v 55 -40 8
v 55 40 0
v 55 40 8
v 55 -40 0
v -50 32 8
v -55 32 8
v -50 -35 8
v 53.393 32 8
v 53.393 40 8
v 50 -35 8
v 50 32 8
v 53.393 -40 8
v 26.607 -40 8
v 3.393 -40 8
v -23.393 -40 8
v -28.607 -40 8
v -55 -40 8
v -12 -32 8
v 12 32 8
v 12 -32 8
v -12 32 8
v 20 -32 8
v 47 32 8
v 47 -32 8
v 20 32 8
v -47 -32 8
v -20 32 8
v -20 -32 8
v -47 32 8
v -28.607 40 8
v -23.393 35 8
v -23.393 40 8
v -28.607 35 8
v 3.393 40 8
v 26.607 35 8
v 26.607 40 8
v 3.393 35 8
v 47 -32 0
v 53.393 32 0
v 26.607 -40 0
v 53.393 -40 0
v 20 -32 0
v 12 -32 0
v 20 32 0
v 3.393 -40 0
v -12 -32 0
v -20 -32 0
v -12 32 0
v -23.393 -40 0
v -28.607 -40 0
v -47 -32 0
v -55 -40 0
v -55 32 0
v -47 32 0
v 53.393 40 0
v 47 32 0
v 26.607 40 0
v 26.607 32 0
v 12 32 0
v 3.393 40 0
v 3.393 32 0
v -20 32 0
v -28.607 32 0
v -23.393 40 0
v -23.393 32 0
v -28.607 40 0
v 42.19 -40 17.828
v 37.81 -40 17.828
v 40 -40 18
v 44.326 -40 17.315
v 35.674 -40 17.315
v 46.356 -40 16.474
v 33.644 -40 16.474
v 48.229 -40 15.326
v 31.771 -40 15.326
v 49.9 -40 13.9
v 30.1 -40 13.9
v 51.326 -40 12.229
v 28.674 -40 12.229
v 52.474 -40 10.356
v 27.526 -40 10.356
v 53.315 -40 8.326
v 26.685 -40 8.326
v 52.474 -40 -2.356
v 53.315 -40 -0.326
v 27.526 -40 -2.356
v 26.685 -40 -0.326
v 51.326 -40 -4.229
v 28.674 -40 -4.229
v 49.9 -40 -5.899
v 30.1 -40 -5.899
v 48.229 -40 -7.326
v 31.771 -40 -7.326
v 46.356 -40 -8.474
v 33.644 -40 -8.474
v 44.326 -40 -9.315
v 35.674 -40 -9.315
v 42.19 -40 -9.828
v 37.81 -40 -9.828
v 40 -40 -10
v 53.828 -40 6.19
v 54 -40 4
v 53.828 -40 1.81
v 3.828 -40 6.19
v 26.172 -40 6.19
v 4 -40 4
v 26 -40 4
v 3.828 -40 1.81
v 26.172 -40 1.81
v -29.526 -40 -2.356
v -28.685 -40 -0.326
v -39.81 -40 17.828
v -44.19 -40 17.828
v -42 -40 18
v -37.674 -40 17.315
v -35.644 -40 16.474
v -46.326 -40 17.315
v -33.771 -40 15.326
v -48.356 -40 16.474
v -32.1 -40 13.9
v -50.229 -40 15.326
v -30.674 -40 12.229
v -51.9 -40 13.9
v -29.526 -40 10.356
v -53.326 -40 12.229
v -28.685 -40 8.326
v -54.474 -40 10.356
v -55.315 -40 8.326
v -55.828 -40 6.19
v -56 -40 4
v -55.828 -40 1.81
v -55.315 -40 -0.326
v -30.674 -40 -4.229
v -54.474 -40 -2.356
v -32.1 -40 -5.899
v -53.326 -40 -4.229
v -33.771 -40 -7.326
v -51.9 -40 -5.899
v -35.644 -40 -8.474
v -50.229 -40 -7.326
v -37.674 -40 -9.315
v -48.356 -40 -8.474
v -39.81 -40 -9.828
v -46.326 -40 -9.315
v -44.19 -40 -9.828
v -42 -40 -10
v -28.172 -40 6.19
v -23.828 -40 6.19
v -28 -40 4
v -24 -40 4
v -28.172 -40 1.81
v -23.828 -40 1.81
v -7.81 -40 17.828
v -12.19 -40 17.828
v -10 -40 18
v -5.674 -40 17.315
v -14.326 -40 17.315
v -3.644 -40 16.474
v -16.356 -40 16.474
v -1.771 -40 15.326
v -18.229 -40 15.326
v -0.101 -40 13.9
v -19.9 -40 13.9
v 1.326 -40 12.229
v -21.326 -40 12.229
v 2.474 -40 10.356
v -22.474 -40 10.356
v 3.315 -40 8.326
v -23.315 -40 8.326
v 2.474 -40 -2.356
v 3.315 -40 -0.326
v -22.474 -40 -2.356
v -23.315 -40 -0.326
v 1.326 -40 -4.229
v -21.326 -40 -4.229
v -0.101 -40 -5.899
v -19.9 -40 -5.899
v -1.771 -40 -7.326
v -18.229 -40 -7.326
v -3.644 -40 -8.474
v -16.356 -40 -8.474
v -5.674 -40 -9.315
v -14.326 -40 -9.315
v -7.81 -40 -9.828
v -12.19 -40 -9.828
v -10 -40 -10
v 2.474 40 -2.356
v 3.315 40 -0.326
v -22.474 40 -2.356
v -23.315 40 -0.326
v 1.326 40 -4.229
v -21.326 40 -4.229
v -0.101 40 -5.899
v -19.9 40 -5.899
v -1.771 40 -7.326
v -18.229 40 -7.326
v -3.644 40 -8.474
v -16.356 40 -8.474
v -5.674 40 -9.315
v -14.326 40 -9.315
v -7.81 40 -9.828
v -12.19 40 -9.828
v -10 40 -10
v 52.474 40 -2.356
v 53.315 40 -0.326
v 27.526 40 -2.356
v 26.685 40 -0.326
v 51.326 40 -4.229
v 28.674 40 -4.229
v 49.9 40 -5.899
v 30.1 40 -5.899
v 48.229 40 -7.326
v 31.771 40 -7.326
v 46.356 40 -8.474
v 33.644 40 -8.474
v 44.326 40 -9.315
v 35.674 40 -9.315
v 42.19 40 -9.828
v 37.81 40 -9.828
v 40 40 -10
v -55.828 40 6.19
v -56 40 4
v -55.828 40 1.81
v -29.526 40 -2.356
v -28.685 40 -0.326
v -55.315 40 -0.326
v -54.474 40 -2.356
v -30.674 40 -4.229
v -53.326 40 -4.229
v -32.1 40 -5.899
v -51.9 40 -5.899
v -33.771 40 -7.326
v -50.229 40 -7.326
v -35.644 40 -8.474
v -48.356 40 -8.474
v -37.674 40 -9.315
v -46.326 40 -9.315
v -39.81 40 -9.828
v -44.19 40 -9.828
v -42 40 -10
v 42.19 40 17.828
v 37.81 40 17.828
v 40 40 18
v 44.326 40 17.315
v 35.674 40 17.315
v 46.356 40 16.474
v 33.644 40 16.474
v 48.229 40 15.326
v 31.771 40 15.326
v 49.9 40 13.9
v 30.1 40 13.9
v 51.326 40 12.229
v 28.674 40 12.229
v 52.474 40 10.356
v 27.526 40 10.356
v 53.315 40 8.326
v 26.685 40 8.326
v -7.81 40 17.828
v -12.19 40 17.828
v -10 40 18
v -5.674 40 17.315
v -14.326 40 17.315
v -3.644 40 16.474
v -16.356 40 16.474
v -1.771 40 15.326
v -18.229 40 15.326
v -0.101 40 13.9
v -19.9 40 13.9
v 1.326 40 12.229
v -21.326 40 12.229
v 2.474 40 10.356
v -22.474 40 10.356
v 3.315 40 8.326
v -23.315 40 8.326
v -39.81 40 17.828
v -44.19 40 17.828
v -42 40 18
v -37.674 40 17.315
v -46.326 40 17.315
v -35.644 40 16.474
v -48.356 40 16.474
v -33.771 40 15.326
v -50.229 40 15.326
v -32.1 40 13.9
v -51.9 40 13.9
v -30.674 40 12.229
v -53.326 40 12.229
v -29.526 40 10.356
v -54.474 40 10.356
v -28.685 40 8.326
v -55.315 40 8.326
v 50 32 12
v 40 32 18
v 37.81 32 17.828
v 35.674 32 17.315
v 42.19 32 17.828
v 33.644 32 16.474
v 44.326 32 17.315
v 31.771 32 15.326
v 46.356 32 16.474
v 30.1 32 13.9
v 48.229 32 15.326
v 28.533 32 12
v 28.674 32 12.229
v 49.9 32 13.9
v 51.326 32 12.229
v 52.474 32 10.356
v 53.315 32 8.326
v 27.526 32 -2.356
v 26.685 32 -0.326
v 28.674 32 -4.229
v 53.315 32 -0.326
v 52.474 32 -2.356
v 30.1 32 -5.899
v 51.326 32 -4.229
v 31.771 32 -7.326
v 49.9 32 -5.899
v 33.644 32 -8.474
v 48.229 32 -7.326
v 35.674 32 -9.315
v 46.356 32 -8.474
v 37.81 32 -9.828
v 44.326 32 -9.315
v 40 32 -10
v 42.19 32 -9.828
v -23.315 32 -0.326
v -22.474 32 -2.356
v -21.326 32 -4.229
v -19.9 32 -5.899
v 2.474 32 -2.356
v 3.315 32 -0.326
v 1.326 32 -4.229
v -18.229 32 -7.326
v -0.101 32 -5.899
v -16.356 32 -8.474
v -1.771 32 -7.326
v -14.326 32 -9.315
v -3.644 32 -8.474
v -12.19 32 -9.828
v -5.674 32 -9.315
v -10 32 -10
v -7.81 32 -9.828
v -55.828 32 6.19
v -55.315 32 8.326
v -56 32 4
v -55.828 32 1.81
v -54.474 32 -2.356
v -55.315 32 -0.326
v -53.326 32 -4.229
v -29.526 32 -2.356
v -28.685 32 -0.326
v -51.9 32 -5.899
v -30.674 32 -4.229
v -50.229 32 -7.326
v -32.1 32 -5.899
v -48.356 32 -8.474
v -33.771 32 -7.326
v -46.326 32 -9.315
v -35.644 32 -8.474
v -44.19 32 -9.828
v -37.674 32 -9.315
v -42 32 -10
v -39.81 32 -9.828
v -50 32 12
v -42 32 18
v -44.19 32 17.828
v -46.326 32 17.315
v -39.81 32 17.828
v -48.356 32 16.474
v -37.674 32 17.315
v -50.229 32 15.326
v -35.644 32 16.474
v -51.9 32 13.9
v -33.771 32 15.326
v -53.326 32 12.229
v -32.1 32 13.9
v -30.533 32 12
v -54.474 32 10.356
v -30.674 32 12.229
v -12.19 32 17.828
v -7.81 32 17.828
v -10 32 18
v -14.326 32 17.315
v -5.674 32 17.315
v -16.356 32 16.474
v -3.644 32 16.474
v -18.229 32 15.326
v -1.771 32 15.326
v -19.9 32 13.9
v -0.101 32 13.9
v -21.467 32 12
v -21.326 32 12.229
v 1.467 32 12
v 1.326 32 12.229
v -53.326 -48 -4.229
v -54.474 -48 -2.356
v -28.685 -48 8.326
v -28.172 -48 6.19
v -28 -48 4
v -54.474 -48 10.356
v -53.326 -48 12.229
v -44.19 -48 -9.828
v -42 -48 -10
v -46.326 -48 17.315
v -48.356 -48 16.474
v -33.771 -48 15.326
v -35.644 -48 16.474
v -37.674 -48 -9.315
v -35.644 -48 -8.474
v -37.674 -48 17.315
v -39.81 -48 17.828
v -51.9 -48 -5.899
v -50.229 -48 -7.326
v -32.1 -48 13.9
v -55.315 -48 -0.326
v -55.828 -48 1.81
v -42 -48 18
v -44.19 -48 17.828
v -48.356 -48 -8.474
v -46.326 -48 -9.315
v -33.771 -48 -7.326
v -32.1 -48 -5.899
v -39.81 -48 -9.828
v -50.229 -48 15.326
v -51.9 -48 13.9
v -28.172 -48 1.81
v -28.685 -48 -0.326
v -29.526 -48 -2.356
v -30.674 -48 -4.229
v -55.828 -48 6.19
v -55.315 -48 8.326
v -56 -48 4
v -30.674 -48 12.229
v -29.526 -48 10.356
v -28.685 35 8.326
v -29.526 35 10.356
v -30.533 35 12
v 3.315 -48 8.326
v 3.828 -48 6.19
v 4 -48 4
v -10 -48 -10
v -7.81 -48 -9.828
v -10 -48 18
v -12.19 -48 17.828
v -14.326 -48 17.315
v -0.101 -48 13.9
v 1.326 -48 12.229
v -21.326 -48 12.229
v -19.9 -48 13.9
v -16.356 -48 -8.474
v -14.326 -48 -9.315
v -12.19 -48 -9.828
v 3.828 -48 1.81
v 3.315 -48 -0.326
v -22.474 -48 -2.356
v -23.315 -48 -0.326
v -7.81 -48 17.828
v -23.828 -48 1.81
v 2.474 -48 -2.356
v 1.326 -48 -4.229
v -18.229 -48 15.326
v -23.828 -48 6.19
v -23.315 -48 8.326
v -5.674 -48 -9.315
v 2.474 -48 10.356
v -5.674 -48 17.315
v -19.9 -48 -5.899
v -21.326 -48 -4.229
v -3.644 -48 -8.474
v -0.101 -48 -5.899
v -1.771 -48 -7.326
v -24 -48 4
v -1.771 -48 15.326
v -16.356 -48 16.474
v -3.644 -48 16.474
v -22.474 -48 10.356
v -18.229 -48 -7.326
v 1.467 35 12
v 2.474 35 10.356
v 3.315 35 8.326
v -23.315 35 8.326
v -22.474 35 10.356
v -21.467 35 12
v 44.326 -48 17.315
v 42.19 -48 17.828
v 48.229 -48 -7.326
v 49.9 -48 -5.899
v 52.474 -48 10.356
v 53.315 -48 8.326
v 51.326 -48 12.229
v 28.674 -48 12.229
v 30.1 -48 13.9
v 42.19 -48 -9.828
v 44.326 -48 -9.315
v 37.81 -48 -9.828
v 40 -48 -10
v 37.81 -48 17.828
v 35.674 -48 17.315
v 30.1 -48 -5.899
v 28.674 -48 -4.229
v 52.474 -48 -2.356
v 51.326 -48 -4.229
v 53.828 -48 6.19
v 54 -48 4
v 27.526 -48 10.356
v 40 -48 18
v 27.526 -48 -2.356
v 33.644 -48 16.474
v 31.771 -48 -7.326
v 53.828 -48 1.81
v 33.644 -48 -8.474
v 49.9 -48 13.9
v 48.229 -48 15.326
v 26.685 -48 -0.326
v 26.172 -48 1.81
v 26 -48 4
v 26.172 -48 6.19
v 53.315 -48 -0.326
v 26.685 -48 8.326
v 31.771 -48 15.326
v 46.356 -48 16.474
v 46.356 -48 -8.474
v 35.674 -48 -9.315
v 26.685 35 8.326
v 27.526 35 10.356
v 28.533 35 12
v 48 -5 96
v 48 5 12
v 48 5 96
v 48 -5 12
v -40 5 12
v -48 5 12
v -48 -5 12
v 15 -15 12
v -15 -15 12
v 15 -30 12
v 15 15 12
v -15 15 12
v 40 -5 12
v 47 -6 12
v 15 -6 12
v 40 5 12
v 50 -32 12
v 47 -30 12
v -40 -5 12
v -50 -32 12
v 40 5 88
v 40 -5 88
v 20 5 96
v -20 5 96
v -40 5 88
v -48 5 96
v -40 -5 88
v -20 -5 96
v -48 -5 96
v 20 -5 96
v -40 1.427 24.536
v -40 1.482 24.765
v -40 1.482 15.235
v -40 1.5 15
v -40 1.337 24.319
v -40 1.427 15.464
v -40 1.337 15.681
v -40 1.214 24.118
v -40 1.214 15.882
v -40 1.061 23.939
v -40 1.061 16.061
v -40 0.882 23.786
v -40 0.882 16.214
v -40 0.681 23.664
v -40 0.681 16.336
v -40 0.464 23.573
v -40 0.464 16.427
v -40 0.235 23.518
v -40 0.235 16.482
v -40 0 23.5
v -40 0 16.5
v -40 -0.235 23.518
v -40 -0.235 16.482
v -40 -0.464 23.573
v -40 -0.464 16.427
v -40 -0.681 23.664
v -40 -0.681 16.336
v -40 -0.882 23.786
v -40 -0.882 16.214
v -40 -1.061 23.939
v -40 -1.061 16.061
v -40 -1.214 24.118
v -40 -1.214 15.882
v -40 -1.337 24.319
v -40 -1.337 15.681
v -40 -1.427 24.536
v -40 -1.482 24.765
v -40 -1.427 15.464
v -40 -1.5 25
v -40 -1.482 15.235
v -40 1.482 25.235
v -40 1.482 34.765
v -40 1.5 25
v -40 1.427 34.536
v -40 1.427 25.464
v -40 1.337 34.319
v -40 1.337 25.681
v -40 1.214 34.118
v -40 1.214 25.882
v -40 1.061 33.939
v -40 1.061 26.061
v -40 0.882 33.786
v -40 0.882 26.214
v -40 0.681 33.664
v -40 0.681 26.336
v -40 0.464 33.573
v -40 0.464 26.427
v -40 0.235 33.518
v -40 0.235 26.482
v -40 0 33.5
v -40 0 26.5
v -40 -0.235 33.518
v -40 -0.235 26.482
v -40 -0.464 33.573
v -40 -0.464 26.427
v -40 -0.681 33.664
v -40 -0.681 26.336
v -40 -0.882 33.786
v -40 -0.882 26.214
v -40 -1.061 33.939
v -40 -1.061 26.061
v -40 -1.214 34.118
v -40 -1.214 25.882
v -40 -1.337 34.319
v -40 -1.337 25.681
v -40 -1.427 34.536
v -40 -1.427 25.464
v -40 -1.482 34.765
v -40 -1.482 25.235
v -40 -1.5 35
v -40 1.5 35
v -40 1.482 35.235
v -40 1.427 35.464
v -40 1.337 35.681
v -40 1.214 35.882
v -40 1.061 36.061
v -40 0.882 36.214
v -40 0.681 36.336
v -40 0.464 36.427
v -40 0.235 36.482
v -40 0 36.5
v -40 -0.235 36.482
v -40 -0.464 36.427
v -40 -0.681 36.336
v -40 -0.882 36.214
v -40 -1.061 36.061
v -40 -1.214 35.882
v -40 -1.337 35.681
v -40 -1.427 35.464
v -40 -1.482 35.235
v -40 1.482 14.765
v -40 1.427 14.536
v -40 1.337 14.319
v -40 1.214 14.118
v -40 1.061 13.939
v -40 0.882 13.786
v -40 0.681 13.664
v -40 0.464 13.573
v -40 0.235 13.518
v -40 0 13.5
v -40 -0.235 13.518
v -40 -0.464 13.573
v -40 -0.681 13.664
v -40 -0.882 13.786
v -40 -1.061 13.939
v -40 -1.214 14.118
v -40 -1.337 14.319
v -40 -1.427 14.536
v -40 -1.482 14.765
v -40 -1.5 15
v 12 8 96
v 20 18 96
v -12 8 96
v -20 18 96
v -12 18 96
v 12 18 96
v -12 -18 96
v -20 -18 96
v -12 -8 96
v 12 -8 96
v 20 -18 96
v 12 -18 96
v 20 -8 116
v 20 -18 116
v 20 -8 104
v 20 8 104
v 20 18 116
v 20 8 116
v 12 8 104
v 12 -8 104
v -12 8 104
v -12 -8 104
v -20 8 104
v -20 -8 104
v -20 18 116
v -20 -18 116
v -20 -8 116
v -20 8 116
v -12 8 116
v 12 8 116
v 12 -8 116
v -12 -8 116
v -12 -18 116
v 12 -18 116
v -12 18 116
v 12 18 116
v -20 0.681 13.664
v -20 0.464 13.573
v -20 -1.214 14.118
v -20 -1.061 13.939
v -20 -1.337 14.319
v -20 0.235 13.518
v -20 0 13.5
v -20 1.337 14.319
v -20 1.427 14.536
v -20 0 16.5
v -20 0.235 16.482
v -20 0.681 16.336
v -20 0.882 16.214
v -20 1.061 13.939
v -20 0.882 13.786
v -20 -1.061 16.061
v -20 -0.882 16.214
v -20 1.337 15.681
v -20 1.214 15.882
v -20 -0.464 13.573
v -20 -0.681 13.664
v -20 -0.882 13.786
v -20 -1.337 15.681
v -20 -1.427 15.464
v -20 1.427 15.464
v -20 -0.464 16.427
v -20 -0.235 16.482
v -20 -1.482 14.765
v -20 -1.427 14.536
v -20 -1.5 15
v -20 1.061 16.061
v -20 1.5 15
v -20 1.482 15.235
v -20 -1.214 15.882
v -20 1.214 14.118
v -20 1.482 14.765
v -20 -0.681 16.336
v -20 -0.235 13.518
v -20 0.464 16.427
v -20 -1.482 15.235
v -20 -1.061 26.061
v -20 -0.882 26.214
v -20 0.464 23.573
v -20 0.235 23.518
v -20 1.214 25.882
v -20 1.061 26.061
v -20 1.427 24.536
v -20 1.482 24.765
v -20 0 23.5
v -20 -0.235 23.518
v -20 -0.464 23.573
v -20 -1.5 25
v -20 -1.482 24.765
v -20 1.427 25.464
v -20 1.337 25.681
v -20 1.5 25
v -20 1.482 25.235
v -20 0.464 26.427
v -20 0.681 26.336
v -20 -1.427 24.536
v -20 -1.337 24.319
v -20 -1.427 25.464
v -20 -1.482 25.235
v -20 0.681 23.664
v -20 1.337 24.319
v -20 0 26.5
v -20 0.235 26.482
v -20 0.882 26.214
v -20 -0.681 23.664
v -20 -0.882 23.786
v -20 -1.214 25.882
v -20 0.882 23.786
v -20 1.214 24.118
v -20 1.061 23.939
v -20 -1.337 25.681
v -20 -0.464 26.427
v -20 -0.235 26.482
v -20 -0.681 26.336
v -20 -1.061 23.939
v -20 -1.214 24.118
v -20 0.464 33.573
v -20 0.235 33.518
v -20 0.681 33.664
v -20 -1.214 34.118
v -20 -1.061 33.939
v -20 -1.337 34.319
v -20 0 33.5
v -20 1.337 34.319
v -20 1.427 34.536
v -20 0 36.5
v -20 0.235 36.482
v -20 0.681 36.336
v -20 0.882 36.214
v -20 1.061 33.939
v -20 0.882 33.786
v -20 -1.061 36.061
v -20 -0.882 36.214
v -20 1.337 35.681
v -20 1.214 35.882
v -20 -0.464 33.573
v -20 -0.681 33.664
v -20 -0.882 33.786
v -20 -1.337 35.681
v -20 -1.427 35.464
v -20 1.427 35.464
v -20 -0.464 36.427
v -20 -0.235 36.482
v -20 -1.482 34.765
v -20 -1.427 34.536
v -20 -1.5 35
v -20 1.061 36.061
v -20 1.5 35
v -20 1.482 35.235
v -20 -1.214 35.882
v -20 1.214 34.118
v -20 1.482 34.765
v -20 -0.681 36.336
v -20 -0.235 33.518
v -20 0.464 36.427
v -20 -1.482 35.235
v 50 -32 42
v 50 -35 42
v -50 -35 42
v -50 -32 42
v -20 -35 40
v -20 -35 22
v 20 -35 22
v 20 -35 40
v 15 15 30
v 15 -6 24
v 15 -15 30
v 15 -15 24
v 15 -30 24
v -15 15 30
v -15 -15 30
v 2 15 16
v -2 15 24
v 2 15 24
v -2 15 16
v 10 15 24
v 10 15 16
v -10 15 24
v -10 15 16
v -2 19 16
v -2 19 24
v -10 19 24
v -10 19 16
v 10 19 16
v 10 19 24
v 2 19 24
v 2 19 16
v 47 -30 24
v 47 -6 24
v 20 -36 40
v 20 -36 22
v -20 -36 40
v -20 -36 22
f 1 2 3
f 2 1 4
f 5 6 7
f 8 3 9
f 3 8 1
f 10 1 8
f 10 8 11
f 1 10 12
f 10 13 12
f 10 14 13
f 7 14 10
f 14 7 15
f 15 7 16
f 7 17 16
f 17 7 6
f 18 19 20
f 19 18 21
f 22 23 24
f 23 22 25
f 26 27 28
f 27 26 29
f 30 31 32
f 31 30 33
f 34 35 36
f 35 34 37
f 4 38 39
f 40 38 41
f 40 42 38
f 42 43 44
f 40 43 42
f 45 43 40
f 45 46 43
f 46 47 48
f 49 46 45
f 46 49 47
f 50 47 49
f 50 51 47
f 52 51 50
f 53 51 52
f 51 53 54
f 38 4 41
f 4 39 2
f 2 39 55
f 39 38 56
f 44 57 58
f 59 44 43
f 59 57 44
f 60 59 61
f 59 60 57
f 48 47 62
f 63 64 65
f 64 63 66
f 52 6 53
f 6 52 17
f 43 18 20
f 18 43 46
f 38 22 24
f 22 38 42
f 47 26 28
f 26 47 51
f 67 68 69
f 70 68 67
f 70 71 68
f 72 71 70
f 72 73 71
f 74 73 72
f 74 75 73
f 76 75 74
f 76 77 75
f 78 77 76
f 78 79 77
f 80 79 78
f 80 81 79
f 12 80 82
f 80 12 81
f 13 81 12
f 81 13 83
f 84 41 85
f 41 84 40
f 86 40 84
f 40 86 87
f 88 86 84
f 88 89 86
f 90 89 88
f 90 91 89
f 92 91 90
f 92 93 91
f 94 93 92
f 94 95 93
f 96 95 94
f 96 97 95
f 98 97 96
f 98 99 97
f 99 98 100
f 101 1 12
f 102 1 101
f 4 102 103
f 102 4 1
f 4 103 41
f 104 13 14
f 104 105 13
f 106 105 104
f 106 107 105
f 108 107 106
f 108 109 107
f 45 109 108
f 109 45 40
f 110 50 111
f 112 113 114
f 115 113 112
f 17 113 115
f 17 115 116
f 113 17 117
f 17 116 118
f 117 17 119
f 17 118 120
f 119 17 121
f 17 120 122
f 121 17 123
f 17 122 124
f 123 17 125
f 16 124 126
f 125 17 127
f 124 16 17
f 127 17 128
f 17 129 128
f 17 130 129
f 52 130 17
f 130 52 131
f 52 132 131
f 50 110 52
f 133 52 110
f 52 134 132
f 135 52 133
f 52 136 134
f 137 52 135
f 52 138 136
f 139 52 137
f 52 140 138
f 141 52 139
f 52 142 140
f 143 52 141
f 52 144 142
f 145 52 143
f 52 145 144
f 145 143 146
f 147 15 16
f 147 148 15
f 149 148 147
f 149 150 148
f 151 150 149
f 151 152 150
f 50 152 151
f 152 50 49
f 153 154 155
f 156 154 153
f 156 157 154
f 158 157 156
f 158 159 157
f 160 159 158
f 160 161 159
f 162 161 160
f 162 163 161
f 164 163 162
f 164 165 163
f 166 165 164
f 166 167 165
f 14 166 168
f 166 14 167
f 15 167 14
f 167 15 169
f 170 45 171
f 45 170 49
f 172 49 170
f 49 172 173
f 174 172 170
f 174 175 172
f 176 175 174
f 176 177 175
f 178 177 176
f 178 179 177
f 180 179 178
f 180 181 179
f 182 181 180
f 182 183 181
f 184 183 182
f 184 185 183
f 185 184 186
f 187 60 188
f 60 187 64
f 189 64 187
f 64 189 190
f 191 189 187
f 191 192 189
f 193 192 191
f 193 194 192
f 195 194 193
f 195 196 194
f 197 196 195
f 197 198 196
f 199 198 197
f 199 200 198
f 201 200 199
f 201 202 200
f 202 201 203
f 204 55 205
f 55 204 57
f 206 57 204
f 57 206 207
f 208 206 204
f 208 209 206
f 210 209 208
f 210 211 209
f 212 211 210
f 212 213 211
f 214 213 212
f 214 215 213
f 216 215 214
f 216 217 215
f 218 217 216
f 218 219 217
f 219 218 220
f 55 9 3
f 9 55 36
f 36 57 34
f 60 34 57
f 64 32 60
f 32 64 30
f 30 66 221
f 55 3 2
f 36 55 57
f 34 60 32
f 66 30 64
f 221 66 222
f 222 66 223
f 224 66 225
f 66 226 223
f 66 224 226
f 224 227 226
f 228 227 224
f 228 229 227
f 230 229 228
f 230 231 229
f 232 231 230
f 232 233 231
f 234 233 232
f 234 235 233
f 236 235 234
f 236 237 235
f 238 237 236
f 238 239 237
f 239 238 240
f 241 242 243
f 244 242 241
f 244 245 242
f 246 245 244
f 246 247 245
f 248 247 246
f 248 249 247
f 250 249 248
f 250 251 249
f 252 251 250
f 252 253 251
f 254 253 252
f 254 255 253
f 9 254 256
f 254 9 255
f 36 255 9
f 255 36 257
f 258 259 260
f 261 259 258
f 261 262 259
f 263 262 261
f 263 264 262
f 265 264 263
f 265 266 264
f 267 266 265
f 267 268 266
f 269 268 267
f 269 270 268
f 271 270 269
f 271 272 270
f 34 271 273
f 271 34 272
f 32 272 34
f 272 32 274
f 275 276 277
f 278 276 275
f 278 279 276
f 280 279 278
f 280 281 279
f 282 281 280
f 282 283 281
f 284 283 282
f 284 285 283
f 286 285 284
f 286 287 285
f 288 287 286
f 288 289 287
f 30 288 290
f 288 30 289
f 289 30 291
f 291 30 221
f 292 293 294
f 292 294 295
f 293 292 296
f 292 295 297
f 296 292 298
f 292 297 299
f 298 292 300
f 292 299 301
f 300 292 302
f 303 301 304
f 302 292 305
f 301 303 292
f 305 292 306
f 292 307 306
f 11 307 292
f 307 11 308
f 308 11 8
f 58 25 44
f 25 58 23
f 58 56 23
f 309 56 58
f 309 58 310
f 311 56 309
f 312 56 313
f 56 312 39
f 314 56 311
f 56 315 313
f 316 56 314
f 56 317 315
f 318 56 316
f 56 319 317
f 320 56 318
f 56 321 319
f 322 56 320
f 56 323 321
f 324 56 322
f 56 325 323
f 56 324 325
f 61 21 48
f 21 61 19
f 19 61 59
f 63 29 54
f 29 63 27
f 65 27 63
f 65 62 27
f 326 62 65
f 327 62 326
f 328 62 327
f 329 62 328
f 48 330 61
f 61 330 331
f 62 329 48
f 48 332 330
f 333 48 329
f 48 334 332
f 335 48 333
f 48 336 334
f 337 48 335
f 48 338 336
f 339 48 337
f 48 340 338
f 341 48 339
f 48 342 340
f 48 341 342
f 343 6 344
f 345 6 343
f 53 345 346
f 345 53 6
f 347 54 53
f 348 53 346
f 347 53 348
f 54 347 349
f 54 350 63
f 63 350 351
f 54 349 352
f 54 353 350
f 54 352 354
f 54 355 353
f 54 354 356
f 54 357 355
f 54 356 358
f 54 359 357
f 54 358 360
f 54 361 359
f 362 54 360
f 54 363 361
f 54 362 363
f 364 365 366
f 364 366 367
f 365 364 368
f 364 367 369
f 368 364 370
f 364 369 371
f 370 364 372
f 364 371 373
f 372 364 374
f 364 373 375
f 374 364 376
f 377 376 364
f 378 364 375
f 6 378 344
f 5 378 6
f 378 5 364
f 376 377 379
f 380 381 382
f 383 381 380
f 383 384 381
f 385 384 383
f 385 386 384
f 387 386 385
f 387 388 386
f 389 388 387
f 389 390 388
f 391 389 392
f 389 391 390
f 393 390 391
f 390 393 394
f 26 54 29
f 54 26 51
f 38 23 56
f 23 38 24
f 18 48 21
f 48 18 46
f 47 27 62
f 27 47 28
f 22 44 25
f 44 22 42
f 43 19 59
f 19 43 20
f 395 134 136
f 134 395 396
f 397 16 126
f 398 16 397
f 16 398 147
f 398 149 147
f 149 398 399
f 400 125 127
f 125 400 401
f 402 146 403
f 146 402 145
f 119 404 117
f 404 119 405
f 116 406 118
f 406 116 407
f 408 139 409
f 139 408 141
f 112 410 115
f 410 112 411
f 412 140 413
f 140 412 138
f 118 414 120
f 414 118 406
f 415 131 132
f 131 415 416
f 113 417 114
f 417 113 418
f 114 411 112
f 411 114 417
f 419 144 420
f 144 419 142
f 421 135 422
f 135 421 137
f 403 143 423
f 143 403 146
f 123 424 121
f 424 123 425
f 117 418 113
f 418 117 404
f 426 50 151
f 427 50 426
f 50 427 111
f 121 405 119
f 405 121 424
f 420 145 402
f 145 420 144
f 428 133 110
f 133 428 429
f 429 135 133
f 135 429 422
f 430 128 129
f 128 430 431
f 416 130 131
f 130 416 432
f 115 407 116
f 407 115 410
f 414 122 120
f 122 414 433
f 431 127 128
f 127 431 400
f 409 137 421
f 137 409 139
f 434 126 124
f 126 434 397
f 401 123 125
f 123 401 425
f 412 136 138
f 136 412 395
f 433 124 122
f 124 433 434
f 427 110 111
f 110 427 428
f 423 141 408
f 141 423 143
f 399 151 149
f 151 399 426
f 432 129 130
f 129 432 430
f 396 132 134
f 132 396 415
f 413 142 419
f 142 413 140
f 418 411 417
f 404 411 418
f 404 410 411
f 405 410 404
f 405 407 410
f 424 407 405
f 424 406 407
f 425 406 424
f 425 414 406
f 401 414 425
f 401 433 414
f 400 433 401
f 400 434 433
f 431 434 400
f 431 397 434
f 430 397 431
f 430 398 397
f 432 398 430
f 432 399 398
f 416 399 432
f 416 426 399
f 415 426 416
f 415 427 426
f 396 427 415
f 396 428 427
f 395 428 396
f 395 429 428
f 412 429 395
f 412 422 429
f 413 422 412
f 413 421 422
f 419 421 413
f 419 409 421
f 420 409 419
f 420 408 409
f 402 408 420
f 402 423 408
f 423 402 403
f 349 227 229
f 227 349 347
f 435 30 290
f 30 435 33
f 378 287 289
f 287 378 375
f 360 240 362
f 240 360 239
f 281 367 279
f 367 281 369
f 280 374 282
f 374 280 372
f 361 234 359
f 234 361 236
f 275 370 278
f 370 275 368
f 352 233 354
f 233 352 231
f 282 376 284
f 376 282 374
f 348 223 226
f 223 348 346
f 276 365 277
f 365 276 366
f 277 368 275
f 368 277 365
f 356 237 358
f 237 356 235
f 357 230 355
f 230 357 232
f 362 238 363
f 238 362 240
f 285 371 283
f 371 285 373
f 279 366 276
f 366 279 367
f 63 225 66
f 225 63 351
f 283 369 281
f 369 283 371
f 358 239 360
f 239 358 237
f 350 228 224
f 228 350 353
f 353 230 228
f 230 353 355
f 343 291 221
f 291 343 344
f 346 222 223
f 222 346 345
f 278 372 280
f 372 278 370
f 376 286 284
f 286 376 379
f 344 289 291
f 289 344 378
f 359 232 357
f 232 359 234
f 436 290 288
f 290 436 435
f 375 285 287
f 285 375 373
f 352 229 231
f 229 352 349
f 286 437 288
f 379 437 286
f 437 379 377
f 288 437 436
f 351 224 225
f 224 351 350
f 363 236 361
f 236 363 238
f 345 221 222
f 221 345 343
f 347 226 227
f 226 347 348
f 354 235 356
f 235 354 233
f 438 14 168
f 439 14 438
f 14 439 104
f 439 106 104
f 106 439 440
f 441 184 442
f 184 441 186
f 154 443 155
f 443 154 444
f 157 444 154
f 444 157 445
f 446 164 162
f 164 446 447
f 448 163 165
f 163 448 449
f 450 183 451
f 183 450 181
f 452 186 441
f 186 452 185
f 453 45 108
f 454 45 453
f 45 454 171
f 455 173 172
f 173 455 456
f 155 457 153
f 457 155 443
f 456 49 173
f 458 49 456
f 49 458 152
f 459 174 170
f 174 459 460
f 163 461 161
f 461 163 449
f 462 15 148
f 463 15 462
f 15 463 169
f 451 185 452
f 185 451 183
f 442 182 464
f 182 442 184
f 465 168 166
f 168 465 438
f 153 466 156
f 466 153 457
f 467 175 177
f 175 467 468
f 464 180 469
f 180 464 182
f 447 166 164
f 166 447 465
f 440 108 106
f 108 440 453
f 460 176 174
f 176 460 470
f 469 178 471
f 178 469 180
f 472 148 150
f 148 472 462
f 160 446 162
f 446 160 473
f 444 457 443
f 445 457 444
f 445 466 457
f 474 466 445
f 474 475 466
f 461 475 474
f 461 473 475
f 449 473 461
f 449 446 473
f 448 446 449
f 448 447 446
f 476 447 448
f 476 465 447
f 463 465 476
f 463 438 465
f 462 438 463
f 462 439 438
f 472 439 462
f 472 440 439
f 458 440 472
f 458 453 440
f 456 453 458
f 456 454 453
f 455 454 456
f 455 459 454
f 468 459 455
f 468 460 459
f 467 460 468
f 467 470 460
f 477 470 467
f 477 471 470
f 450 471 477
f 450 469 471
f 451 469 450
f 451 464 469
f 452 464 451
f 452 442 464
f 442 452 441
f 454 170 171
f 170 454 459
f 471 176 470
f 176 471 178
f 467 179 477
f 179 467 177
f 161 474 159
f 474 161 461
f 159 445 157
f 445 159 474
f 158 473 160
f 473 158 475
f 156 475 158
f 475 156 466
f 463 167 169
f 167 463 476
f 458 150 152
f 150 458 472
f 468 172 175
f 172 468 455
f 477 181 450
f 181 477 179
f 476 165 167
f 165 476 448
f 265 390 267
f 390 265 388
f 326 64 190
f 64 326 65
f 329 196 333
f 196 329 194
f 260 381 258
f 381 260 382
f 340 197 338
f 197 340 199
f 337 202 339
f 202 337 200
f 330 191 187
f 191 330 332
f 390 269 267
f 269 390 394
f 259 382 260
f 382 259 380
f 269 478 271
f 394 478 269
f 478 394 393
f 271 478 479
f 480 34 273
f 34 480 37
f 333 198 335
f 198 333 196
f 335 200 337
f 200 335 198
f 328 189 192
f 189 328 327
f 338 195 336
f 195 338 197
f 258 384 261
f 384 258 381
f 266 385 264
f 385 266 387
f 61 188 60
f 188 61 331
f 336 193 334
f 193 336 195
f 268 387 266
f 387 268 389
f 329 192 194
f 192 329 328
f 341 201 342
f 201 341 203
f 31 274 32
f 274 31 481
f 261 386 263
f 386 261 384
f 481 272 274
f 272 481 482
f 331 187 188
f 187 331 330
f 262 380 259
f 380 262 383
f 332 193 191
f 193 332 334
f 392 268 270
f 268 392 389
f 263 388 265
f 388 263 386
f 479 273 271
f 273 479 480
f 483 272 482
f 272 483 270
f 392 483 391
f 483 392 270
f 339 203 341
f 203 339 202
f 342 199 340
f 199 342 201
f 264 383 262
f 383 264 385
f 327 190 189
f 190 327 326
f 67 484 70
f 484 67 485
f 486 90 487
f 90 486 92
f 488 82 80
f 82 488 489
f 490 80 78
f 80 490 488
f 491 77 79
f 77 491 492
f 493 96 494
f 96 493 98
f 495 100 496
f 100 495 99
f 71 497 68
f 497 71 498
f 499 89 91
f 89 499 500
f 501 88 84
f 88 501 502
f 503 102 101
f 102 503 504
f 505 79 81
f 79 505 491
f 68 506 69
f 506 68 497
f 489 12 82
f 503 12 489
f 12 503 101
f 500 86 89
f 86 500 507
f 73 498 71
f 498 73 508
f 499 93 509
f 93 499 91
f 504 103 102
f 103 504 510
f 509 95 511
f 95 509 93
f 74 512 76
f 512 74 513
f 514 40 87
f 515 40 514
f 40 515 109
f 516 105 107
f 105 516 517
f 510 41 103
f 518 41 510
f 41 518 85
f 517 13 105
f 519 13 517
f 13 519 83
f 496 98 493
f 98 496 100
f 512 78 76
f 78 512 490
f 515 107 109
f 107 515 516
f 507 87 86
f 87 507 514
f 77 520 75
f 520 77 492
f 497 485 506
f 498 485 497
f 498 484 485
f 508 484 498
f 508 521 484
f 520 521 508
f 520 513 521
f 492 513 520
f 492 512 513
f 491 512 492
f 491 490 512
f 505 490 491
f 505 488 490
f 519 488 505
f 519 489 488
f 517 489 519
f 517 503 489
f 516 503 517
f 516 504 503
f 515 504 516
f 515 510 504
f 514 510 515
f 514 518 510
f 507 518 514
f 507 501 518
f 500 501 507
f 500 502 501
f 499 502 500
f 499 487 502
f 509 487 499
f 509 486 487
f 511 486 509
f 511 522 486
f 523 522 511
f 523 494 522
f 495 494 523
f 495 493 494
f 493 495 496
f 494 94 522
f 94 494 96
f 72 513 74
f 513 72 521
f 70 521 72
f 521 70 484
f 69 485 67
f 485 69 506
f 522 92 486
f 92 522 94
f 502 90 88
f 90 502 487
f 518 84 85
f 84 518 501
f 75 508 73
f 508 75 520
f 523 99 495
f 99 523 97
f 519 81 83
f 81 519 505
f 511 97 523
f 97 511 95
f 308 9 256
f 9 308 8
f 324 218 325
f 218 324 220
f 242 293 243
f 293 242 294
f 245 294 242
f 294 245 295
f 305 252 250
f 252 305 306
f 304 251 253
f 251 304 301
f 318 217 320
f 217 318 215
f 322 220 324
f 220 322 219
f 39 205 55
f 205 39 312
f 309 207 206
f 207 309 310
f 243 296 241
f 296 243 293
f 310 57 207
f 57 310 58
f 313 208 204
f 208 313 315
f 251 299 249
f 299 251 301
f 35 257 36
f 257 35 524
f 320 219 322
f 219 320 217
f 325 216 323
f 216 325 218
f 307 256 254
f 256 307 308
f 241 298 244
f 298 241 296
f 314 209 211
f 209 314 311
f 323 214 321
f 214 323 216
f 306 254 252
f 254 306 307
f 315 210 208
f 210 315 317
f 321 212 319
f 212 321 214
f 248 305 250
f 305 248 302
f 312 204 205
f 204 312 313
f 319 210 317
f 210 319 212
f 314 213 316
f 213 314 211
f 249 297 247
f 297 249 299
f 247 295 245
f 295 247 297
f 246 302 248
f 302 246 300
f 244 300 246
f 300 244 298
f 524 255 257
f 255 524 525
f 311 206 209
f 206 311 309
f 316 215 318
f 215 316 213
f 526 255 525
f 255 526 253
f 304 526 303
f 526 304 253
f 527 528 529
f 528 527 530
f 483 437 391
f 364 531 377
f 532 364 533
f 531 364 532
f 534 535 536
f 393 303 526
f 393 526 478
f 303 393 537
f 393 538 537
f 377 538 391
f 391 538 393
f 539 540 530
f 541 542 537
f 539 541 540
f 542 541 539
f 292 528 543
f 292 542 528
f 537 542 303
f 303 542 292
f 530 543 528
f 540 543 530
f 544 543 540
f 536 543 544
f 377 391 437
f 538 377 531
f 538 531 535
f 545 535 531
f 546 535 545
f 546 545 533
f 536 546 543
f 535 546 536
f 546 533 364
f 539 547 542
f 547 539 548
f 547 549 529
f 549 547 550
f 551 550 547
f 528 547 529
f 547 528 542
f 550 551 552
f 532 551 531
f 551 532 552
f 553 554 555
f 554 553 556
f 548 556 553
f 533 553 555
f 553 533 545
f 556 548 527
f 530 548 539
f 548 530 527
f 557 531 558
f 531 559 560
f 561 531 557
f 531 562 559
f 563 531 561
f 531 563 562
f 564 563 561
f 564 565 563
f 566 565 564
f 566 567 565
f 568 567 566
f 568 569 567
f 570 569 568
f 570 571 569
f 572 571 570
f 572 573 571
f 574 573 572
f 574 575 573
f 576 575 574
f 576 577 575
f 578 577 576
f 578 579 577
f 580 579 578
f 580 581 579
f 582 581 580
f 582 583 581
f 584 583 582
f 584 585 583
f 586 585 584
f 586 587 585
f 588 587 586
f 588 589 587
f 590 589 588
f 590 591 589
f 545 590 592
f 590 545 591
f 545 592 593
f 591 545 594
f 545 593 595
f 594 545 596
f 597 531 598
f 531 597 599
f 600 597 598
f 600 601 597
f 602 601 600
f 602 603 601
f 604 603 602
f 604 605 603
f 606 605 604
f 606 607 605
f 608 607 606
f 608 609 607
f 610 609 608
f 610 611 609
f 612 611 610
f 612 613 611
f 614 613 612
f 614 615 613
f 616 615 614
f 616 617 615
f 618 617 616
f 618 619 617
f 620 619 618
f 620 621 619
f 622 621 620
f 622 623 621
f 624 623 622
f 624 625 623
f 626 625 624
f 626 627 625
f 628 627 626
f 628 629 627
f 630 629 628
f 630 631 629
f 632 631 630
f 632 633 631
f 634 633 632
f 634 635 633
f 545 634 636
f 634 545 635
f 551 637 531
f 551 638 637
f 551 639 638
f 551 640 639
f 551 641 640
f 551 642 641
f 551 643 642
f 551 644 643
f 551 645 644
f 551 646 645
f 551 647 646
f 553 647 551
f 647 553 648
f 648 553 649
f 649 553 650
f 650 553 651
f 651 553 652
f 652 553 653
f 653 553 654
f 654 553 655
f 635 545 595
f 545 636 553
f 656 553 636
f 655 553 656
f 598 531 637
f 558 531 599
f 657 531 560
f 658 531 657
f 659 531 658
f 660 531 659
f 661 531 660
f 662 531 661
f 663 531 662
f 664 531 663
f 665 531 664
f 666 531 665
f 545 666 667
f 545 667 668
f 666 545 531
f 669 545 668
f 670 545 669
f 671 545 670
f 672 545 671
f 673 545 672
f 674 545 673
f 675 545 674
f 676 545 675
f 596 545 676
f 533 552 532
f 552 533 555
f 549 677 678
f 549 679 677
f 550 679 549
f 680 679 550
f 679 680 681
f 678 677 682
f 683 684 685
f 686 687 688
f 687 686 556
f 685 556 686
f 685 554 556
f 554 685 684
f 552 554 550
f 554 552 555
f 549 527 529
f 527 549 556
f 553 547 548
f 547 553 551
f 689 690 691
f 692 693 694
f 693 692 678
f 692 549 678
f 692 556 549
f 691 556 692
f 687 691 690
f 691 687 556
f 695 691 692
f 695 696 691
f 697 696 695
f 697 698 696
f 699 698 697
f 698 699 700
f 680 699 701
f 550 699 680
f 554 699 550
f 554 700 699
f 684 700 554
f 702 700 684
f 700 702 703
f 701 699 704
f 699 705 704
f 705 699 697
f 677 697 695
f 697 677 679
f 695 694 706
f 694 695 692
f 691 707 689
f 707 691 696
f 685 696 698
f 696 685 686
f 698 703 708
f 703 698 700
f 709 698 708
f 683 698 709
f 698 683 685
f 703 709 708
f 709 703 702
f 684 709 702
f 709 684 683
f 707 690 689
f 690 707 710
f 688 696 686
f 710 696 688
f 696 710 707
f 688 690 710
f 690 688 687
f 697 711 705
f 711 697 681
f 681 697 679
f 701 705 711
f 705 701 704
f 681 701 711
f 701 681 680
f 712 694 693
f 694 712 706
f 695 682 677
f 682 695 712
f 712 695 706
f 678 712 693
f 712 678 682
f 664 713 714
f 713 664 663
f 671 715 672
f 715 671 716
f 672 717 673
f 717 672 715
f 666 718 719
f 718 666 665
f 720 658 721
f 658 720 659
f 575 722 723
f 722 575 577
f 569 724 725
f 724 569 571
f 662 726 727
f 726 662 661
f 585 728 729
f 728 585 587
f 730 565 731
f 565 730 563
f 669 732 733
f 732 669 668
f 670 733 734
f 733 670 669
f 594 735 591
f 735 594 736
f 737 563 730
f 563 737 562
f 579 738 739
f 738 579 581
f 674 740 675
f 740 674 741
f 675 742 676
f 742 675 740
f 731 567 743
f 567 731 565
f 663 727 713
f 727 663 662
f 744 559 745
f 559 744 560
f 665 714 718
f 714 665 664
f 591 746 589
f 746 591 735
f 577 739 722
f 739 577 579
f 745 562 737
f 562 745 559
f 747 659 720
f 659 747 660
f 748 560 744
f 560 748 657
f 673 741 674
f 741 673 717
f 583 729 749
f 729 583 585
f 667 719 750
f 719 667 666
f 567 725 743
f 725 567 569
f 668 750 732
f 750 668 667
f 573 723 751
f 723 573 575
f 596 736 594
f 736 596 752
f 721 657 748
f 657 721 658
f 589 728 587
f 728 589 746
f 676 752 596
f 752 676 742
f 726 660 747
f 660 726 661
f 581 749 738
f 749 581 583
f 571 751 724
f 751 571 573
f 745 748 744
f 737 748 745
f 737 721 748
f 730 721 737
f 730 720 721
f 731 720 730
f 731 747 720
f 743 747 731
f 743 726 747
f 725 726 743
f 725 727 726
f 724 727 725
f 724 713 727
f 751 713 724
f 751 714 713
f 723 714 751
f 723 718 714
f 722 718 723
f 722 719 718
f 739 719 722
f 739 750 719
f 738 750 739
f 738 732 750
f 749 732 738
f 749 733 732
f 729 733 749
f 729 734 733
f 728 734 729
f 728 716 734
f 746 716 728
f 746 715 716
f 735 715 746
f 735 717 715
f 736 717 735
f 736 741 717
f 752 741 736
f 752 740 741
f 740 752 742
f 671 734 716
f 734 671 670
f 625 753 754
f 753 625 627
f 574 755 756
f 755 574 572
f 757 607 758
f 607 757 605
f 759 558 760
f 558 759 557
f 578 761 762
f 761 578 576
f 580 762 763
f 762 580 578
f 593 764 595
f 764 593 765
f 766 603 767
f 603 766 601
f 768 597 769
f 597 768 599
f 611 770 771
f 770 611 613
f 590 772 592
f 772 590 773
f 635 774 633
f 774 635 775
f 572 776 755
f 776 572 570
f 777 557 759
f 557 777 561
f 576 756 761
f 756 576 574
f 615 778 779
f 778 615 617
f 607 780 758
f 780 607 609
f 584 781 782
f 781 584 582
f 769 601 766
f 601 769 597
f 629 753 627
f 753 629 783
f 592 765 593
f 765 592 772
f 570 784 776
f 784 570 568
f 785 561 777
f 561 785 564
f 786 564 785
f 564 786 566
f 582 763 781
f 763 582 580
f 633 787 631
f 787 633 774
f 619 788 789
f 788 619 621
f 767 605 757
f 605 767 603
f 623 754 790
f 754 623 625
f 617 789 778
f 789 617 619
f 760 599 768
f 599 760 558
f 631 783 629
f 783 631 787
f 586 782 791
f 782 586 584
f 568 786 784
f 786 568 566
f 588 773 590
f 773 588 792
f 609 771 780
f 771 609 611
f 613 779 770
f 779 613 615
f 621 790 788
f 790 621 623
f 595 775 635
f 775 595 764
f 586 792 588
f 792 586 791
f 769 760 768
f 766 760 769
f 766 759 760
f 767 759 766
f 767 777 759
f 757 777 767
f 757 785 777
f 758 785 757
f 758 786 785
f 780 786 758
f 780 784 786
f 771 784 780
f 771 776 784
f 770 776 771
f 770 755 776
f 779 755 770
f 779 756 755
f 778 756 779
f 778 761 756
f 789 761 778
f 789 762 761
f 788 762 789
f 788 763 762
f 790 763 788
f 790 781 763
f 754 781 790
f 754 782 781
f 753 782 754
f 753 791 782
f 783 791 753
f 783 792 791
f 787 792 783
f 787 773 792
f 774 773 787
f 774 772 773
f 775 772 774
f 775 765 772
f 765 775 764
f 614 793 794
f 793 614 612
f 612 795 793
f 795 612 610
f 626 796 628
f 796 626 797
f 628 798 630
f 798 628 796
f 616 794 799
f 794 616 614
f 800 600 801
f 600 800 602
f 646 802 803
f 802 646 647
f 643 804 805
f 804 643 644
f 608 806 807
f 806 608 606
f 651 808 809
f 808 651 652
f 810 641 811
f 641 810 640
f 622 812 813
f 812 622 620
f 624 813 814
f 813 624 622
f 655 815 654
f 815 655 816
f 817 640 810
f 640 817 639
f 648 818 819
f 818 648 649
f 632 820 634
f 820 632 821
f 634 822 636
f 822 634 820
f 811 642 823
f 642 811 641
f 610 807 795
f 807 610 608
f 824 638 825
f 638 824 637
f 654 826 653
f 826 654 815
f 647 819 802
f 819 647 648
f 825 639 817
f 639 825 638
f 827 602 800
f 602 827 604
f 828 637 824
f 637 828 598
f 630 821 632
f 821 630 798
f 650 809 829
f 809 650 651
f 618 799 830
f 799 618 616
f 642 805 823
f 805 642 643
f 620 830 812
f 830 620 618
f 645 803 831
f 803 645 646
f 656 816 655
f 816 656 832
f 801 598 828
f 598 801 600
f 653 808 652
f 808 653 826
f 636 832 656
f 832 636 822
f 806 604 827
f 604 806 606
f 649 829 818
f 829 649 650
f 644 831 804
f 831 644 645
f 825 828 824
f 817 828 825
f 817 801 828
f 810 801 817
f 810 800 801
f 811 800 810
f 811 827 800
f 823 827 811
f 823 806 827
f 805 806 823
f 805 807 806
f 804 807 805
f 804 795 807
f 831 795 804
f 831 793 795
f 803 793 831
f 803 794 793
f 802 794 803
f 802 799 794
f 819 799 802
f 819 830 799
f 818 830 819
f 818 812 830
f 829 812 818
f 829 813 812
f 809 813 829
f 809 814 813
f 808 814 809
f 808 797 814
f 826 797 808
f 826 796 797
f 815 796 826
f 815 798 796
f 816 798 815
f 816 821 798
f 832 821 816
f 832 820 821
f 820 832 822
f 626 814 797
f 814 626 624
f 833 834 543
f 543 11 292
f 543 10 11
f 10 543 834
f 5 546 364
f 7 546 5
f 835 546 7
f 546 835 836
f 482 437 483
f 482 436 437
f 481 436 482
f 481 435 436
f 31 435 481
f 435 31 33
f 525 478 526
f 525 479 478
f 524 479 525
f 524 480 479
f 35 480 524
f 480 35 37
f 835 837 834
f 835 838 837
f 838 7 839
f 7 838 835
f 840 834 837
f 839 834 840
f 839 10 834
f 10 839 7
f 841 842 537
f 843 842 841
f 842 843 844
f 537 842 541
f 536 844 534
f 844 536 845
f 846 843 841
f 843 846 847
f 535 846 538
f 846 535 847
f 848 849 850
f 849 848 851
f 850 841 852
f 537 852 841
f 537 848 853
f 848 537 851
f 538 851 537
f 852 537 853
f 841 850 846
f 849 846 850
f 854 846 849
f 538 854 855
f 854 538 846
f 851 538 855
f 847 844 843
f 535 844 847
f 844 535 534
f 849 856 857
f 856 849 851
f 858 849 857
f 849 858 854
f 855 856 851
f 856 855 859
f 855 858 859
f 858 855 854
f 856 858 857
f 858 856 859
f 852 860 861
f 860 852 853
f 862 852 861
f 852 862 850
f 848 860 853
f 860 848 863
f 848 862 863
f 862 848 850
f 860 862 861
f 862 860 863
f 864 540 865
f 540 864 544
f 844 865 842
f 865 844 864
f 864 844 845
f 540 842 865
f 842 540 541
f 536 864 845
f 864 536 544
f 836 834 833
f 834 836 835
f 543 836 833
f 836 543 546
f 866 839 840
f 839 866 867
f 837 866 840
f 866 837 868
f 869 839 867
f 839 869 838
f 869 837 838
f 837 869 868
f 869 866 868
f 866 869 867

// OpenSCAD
// FRC 競賽機器人 — 底盤 + 升降臂 + 夾爪
$fn = 40;

// 底盤（鋁型材框架）
color([0.55, 0.56, 0.60]) {
  translate([-55, -40, 0]) cube([110, 8, 8]);   // 前
  translate([-55, 32, 0]) cube([110, 8, 8]);    // 後
  translate([-55, -40, 0]) cube([8, 80, 8]);    // 左
  translate([47, -40, 0]) cube([8, 80, 8]);     // 右
  // 橫樑
  translate([-20, -40, 0]) cube([8, 80, 8]);
  translate([12, -40, 0]) cube([8, 80, 8]);
}

// 輪子（六輪驅動，NEO 馬達）
color([0.20, 0.20, 0.22])
  for (x = [-42, -10, 40]) for (y = [-44, 36])
    translate([x, y, 4]) rotate([90, 0, 0]) cylinder(h = 8, r = 14, center = true);
// 輪轂（橘色）
color([0.90, 0.45, 0.05])
  for (x = [-42, -10, 40]) for (y = [-44, 36])
    translate([x, y, 4]) rotate([90, 0, 0]) cylinder(h = 6, r = 6, center = true);

// 機器人主框（碳纖維板，深灰）
color([0.22, 0.22, 0.25])
  translate([-50, -35, 8]) cube([100, 70, 4]);

// 電池（LiFePO4，黑色矩形）
color([0.12, 0.12, 0.14])
  translate([-15, -15, 12]) cube([30, 30, 18]);
color([0.90, 0.08, 0.08])
  translate([-10, 15, 16]) cube([8, 4, 8]);
color([0.08, 0.08, 0.90])
  translate([2, 15, 16]) cube([8, 4, 8]);

// 機器人控制器 RoboRIO（藍色）
color([0.15, 0.35, 0.70])
  translate([15, -30, 12]) cube([32, 24, 12]);

// 升降臂（垂直，橘色 C-channel）
color([0.90, 0.45, 0.05]) {
  translate([40, -5, 12]) cube([8, 10, 80]);
  translate([-48, -5, 12]) cube([8, 10, 80]);
  // 橫樑連接
  translate([-48, -5, 88]) cube([96, 10, 8]);
}

// 夾爪（頂部）
color([0.55, 0.56, 0.60]) {
  translate([-20, -8, 96]) cube([40, 16, 8]);
  // 夾爪臂
  translate([-20, -18, 96]) cube([8, 10, 20]);
  translate([12, -18, 96]) cube([8, 10, 20]);
  translate([-20, 8, 96]) cube([8, 10, 20]);
  translate([12, 8, 96]) cube([8, 10, 20]);
}

// FRC 號碼牌（紅隊）
color([0.88, 0.10, 0.10])
  translate([-50, -35, 12]) cube([100, 3, 30]);
color([0.95, 0.95, 0.95])
  translate([-20, -36, 22]) cube([40, 1, 18]);

// 電纜（橘色 CAN bus）
color([0.88, 0.50, 0.05])
  for (z = [15, 25, 35])
    translate([-48, 0, z]) rotate([0, 90, 0]) cylinder(h = 28, r = 1.5);
